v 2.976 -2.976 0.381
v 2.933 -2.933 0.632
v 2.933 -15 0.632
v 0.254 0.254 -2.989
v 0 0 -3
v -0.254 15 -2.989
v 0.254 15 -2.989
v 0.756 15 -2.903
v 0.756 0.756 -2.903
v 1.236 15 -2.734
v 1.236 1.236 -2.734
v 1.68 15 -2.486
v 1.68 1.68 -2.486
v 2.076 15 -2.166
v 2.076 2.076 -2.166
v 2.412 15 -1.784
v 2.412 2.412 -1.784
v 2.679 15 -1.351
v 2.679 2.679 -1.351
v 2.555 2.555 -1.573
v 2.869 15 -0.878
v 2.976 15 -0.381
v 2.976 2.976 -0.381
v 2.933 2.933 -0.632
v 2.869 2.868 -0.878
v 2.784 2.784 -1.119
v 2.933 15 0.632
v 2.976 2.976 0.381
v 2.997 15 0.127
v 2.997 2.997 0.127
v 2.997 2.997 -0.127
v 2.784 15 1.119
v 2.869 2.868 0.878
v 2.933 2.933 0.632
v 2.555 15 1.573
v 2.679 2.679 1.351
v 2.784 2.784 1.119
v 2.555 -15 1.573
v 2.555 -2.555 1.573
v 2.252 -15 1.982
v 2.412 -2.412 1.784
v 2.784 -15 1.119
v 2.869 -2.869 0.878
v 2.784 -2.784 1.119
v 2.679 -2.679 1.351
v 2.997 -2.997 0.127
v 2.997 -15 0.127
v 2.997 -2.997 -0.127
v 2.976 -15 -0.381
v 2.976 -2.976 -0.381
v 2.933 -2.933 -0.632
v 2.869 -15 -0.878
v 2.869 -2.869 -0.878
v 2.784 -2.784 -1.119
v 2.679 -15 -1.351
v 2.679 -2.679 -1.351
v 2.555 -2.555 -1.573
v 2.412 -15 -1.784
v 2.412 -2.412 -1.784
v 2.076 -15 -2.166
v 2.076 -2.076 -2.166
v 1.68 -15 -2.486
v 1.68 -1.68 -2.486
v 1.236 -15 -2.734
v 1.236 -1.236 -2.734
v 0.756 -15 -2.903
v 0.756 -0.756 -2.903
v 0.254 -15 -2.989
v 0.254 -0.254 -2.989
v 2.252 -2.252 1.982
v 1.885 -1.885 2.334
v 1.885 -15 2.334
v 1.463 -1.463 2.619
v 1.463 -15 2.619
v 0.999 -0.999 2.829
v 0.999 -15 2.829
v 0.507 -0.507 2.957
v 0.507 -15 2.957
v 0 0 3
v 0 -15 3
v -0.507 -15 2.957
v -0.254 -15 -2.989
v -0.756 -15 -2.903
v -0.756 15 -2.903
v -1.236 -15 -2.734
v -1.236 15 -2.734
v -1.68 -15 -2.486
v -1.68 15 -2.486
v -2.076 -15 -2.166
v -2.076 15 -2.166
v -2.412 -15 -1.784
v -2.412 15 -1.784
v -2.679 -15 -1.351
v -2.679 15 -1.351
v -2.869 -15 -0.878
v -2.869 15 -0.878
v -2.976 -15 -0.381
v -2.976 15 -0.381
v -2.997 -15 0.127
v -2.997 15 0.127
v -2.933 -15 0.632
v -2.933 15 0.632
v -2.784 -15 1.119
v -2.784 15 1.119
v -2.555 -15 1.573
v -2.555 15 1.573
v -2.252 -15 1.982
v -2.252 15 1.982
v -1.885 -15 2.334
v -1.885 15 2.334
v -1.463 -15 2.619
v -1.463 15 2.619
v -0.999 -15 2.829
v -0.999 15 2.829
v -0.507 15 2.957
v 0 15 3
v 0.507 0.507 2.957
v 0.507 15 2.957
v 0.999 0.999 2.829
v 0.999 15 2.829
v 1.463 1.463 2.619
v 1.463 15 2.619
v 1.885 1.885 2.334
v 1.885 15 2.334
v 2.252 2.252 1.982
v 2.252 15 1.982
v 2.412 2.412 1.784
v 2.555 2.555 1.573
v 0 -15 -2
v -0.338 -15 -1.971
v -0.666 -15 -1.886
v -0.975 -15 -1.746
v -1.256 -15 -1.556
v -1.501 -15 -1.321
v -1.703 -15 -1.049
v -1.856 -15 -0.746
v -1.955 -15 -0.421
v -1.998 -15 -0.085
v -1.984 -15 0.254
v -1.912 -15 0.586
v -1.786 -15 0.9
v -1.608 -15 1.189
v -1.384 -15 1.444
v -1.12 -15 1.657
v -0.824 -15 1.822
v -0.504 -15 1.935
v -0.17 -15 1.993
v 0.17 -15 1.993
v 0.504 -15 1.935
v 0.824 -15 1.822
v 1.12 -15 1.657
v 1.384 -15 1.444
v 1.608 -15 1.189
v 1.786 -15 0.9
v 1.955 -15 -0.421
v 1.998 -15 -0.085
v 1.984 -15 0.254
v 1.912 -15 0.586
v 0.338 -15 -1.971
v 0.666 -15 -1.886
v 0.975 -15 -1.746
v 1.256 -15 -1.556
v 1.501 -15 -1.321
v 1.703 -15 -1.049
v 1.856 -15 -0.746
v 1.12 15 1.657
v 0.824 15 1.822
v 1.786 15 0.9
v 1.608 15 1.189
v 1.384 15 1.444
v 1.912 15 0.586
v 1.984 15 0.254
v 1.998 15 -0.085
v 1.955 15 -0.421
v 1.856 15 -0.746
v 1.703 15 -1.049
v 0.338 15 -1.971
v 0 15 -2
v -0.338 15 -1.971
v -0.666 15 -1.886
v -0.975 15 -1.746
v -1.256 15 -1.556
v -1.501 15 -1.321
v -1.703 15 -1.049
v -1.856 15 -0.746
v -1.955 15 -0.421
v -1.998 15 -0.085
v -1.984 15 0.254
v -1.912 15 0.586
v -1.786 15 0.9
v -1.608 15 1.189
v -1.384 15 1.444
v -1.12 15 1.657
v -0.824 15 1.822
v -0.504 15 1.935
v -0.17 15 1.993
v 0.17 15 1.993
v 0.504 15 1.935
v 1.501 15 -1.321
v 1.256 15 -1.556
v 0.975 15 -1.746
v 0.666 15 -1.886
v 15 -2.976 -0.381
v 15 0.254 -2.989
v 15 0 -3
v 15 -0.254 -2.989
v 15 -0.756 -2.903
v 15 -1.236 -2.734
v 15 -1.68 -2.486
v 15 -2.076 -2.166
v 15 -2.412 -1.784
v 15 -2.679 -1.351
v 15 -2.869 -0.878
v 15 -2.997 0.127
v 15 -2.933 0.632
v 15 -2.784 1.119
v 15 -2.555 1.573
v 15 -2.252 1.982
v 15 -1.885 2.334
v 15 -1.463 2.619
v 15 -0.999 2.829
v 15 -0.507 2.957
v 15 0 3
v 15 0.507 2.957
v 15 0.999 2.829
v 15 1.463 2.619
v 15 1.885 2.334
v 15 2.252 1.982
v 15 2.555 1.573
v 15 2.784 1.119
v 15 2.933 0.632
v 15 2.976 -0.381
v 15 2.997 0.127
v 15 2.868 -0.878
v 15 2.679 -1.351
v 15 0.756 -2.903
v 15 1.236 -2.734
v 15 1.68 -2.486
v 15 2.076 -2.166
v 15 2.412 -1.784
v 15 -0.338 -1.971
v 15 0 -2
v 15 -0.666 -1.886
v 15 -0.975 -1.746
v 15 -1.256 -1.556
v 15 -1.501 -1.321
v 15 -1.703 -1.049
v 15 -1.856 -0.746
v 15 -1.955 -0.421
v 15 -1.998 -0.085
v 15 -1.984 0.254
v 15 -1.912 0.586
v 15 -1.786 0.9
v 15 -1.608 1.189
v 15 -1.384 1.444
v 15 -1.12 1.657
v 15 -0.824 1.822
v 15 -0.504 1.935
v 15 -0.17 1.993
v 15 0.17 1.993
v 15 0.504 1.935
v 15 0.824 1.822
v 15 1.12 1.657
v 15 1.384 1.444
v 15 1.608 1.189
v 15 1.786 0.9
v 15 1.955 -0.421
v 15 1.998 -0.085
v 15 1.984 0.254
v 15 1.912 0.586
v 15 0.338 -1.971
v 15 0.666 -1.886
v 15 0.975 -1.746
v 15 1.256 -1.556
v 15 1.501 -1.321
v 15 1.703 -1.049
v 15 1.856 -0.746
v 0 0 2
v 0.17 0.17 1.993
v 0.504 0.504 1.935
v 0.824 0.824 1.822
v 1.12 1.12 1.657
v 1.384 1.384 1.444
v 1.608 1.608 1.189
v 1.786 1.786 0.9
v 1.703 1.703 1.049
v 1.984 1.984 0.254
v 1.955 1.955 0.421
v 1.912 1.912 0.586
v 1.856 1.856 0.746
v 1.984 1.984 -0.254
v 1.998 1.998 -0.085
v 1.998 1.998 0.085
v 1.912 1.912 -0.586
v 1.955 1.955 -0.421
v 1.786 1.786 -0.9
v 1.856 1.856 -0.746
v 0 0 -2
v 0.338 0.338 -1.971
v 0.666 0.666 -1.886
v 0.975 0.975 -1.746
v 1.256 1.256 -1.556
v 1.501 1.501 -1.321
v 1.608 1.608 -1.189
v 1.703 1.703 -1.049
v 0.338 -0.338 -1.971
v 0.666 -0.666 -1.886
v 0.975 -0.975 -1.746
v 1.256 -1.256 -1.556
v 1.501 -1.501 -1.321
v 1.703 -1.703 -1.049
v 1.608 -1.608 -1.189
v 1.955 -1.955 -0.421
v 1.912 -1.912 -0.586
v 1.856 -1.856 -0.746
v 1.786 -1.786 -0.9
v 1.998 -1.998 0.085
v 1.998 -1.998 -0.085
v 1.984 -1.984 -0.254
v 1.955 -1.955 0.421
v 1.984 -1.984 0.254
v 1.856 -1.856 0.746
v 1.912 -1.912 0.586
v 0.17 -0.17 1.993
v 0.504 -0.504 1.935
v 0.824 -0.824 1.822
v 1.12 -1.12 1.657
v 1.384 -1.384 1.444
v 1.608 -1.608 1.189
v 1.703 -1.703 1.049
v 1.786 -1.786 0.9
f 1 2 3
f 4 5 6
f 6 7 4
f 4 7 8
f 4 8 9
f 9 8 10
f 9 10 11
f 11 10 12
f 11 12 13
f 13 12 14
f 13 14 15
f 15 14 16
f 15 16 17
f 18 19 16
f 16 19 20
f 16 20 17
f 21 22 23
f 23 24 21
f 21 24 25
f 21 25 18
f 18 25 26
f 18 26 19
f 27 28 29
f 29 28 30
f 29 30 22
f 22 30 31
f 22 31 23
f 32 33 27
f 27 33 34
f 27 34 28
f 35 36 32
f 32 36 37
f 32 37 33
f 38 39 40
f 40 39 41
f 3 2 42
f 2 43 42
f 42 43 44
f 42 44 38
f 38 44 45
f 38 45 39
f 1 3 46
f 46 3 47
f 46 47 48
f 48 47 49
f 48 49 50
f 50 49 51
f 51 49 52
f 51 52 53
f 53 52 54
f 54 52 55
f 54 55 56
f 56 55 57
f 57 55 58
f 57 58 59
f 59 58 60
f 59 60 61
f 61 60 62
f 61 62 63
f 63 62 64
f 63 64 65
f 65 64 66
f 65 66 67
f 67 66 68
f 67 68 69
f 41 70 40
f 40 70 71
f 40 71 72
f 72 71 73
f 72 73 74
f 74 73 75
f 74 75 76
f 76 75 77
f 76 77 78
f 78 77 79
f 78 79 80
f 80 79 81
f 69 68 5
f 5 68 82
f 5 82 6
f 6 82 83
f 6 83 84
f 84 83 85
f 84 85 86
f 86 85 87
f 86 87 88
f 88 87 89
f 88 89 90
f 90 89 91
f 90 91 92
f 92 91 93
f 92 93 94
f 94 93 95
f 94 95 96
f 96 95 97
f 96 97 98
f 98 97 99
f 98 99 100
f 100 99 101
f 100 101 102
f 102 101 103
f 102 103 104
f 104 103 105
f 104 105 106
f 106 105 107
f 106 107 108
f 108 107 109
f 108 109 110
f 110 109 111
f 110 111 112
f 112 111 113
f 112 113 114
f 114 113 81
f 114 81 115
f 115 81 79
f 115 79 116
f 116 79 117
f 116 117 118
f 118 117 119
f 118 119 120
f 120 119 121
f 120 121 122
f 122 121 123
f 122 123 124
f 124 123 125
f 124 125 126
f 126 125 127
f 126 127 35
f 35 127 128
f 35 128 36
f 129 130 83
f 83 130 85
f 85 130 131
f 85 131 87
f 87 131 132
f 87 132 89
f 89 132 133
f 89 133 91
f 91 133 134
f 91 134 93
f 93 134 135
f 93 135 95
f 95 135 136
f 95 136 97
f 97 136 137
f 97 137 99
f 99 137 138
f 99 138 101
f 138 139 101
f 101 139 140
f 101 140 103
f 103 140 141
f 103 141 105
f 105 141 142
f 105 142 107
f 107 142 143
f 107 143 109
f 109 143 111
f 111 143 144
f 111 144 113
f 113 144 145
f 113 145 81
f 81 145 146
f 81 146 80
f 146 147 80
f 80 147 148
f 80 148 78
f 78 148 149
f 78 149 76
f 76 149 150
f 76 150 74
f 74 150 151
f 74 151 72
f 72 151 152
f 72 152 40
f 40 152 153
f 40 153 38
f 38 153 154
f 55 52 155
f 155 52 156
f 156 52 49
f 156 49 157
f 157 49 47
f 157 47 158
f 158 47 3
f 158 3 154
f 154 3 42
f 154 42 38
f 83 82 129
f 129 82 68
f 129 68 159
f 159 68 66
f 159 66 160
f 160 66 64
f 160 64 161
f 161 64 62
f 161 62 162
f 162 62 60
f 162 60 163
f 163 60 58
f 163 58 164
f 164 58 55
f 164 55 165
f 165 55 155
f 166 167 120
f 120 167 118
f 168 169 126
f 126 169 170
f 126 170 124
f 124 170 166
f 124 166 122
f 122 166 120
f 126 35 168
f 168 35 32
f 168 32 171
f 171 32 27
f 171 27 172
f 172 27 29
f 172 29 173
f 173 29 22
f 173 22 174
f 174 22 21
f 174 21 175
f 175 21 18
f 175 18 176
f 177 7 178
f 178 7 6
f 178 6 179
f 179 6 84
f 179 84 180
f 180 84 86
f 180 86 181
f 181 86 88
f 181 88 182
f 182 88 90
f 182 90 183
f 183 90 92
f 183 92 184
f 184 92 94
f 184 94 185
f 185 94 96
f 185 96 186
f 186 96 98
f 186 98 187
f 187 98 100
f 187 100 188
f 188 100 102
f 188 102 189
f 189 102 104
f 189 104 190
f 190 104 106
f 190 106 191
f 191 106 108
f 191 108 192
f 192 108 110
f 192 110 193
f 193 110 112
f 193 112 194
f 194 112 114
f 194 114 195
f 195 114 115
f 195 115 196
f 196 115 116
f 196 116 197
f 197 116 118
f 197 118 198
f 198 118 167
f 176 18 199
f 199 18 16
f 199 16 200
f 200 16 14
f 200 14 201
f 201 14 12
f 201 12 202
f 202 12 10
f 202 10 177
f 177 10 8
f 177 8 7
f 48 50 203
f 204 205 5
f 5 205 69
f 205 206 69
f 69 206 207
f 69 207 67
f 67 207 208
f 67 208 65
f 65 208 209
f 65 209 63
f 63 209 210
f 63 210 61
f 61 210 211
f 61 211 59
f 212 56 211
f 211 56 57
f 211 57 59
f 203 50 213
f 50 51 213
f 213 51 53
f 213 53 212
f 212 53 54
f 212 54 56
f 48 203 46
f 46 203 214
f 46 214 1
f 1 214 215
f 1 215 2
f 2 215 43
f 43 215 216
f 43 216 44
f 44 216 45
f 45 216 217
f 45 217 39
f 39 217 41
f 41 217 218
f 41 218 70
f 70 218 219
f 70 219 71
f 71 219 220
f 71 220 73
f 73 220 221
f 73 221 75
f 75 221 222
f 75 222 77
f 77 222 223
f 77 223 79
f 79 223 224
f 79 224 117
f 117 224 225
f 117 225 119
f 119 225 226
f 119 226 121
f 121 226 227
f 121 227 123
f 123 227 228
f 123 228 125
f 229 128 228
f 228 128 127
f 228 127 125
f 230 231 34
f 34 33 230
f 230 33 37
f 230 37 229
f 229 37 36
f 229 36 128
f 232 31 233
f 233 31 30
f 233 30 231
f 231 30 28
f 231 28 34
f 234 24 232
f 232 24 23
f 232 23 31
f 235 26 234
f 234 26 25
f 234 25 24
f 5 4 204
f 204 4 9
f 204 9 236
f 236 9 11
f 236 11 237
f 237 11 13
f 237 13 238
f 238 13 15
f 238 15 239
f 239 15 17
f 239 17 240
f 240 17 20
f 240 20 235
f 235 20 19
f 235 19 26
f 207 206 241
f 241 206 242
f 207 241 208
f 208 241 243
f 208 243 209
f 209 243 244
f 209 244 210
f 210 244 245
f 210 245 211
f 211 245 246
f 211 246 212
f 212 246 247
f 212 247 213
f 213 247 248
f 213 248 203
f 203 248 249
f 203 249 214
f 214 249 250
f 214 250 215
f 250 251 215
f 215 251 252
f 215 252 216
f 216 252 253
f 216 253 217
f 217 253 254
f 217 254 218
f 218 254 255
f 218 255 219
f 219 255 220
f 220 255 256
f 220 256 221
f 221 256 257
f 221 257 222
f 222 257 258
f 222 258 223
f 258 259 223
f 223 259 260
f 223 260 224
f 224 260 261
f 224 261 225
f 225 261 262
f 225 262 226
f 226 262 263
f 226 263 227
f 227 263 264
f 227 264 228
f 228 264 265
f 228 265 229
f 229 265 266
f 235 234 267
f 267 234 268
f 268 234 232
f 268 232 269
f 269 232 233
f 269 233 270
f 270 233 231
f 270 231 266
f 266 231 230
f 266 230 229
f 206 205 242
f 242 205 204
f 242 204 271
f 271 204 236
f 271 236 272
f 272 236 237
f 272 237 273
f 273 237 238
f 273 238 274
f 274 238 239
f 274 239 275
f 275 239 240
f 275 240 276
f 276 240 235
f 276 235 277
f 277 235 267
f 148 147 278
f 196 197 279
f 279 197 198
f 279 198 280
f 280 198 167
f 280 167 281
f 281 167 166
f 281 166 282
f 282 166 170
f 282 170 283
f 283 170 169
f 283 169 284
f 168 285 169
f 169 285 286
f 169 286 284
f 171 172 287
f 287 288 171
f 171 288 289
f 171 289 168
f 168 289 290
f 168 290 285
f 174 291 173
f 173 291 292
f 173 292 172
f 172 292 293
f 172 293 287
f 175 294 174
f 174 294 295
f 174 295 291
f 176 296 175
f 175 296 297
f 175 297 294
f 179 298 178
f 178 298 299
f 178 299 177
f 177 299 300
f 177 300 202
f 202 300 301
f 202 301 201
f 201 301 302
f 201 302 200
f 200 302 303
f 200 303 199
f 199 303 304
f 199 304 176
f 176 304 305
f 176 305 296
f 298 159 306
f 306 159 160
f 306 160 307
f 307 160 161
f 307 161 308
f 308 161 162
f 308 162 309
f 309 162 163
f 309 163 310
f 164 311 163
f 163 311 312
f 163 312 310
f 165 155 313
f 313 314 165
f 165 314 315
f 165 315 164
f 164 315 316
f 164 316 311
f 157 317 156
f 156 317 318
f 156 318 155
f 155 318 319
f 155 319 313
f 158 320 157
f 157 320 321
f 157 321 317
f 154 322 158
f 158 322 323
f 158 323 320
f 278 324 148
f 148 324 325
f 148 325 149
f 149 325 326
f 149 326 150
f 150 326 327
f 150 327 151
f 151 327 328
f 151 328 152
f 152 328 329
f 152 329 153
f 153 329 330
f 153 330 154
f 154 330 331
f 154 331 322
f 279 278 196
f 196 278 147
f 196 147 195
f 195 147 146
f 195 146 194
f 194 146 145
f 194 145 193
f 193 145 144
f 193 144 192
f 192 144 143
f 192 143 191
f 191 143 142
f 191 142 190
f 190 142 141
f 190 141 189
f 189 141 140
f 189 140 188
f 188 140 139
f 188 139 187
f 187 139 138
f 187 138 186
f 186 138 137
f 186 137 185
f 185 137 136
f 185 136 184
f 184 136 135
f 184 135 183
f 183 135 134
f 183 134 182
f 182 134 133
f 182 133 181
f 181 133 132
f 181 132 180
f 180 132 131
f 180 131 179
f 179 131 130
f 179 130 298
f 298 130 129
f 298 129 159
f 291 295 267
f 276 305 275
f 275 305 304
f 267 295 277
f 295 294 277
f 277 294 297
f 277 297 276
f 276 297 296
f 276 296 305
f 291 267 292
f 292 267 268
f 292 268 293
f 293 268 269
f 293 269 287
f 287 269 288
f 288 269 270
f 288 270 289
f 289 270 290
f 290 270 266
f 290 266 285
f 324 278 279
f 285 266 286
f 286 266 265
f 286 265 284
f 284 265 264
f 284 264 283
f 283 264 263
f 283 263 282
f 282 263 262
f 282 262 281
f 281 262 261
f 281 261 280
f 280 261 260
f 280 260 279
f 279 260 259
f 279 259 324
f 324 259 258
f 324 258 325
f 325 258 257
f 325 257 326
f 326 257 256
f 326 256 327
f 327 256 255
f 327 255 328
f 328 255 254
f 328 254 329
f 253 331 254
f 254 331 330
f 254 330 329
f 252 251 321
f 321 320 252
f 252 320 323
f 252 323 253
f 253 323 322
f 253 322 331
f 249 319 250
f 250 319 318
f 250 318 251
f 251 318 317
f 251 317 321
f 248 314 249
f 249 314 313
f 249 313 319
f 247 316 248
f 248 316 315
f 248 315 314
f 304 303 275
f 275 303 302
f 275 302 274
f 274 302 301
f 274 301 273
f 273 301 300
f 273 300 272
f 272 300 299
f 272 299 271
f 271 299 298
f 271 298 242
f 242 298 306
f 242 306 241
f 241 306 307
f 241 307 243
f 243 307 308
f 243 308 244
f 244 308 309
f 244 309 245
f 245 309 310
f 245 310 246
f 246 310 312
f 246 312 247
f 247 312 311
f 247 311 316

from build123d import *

# Parameters (mm, degrees)
BOSS_EXTRUDE2_DEPTH      = 15
BOSS_EXTRUDE2_DEPTH_BACK = 15
SKETCH4_R                = 3
SKETCH5_R                = 3
BOSS_EXTRUDE3_DEPTH      = 15
SKETCH6_R                = 2
CUT_EXTRUDE1_DEPTH       = 34.674916481
SKETCH7_R                = 2
CUT_EXTRUDE2_DEPTH       = 15


with BuildPart() as part:
    # Sketch4 → Boss-Extrude2 (new, two sides: drawn at the far end of the back side and taken through both)
    with BuildSketch(Plane(origin=(0, 0, 0), x_dir=(1, 0, 0), z_dir=(0, 1, 0)).offset(-BOSS_EXTRUDE2_DEPTH_BACK)):
        Circle(SKETCH4_R)
    extrude(amount=BOSS_EXTRUDE2_DEPTH + BOSS_EXTRUDE2_DEPTH_BACK)

    # Sketch5 → Boss-Extrude3 (add)
    with BuildSketch(Plane(origin=(0, 0, 0), x_dir=(0, 0, -1), z_dir=(1, 0, 0))):
        Circle(SKETCH5_R)
    extrude(amount=BOSS_EXTRUDE3_DEPTH)

    # Sketch6 → Cut-Extrude1 (cut, through all)
    with BuildSketch(Plane.XZ.offset(15)):
        Circle(SKETCH6_R)
    extrude(amount=-CUT_EXTRUDE1_DEPTH, mode=Mode.SUBTRACT)

    # Sketch7 → Cut-Extrude2 (cut)
    with BuildSketch(Plane(origin=(15, 0, 0), x_dir=(0, 0, -1), z_dir=(1, 0, 0))):
        Circle(SKETCH7_R)
    extrude(amount=-CUT_EXTRUDE2_DEPTH, mode=Mode.SUBTRACT)


solid = part.part
